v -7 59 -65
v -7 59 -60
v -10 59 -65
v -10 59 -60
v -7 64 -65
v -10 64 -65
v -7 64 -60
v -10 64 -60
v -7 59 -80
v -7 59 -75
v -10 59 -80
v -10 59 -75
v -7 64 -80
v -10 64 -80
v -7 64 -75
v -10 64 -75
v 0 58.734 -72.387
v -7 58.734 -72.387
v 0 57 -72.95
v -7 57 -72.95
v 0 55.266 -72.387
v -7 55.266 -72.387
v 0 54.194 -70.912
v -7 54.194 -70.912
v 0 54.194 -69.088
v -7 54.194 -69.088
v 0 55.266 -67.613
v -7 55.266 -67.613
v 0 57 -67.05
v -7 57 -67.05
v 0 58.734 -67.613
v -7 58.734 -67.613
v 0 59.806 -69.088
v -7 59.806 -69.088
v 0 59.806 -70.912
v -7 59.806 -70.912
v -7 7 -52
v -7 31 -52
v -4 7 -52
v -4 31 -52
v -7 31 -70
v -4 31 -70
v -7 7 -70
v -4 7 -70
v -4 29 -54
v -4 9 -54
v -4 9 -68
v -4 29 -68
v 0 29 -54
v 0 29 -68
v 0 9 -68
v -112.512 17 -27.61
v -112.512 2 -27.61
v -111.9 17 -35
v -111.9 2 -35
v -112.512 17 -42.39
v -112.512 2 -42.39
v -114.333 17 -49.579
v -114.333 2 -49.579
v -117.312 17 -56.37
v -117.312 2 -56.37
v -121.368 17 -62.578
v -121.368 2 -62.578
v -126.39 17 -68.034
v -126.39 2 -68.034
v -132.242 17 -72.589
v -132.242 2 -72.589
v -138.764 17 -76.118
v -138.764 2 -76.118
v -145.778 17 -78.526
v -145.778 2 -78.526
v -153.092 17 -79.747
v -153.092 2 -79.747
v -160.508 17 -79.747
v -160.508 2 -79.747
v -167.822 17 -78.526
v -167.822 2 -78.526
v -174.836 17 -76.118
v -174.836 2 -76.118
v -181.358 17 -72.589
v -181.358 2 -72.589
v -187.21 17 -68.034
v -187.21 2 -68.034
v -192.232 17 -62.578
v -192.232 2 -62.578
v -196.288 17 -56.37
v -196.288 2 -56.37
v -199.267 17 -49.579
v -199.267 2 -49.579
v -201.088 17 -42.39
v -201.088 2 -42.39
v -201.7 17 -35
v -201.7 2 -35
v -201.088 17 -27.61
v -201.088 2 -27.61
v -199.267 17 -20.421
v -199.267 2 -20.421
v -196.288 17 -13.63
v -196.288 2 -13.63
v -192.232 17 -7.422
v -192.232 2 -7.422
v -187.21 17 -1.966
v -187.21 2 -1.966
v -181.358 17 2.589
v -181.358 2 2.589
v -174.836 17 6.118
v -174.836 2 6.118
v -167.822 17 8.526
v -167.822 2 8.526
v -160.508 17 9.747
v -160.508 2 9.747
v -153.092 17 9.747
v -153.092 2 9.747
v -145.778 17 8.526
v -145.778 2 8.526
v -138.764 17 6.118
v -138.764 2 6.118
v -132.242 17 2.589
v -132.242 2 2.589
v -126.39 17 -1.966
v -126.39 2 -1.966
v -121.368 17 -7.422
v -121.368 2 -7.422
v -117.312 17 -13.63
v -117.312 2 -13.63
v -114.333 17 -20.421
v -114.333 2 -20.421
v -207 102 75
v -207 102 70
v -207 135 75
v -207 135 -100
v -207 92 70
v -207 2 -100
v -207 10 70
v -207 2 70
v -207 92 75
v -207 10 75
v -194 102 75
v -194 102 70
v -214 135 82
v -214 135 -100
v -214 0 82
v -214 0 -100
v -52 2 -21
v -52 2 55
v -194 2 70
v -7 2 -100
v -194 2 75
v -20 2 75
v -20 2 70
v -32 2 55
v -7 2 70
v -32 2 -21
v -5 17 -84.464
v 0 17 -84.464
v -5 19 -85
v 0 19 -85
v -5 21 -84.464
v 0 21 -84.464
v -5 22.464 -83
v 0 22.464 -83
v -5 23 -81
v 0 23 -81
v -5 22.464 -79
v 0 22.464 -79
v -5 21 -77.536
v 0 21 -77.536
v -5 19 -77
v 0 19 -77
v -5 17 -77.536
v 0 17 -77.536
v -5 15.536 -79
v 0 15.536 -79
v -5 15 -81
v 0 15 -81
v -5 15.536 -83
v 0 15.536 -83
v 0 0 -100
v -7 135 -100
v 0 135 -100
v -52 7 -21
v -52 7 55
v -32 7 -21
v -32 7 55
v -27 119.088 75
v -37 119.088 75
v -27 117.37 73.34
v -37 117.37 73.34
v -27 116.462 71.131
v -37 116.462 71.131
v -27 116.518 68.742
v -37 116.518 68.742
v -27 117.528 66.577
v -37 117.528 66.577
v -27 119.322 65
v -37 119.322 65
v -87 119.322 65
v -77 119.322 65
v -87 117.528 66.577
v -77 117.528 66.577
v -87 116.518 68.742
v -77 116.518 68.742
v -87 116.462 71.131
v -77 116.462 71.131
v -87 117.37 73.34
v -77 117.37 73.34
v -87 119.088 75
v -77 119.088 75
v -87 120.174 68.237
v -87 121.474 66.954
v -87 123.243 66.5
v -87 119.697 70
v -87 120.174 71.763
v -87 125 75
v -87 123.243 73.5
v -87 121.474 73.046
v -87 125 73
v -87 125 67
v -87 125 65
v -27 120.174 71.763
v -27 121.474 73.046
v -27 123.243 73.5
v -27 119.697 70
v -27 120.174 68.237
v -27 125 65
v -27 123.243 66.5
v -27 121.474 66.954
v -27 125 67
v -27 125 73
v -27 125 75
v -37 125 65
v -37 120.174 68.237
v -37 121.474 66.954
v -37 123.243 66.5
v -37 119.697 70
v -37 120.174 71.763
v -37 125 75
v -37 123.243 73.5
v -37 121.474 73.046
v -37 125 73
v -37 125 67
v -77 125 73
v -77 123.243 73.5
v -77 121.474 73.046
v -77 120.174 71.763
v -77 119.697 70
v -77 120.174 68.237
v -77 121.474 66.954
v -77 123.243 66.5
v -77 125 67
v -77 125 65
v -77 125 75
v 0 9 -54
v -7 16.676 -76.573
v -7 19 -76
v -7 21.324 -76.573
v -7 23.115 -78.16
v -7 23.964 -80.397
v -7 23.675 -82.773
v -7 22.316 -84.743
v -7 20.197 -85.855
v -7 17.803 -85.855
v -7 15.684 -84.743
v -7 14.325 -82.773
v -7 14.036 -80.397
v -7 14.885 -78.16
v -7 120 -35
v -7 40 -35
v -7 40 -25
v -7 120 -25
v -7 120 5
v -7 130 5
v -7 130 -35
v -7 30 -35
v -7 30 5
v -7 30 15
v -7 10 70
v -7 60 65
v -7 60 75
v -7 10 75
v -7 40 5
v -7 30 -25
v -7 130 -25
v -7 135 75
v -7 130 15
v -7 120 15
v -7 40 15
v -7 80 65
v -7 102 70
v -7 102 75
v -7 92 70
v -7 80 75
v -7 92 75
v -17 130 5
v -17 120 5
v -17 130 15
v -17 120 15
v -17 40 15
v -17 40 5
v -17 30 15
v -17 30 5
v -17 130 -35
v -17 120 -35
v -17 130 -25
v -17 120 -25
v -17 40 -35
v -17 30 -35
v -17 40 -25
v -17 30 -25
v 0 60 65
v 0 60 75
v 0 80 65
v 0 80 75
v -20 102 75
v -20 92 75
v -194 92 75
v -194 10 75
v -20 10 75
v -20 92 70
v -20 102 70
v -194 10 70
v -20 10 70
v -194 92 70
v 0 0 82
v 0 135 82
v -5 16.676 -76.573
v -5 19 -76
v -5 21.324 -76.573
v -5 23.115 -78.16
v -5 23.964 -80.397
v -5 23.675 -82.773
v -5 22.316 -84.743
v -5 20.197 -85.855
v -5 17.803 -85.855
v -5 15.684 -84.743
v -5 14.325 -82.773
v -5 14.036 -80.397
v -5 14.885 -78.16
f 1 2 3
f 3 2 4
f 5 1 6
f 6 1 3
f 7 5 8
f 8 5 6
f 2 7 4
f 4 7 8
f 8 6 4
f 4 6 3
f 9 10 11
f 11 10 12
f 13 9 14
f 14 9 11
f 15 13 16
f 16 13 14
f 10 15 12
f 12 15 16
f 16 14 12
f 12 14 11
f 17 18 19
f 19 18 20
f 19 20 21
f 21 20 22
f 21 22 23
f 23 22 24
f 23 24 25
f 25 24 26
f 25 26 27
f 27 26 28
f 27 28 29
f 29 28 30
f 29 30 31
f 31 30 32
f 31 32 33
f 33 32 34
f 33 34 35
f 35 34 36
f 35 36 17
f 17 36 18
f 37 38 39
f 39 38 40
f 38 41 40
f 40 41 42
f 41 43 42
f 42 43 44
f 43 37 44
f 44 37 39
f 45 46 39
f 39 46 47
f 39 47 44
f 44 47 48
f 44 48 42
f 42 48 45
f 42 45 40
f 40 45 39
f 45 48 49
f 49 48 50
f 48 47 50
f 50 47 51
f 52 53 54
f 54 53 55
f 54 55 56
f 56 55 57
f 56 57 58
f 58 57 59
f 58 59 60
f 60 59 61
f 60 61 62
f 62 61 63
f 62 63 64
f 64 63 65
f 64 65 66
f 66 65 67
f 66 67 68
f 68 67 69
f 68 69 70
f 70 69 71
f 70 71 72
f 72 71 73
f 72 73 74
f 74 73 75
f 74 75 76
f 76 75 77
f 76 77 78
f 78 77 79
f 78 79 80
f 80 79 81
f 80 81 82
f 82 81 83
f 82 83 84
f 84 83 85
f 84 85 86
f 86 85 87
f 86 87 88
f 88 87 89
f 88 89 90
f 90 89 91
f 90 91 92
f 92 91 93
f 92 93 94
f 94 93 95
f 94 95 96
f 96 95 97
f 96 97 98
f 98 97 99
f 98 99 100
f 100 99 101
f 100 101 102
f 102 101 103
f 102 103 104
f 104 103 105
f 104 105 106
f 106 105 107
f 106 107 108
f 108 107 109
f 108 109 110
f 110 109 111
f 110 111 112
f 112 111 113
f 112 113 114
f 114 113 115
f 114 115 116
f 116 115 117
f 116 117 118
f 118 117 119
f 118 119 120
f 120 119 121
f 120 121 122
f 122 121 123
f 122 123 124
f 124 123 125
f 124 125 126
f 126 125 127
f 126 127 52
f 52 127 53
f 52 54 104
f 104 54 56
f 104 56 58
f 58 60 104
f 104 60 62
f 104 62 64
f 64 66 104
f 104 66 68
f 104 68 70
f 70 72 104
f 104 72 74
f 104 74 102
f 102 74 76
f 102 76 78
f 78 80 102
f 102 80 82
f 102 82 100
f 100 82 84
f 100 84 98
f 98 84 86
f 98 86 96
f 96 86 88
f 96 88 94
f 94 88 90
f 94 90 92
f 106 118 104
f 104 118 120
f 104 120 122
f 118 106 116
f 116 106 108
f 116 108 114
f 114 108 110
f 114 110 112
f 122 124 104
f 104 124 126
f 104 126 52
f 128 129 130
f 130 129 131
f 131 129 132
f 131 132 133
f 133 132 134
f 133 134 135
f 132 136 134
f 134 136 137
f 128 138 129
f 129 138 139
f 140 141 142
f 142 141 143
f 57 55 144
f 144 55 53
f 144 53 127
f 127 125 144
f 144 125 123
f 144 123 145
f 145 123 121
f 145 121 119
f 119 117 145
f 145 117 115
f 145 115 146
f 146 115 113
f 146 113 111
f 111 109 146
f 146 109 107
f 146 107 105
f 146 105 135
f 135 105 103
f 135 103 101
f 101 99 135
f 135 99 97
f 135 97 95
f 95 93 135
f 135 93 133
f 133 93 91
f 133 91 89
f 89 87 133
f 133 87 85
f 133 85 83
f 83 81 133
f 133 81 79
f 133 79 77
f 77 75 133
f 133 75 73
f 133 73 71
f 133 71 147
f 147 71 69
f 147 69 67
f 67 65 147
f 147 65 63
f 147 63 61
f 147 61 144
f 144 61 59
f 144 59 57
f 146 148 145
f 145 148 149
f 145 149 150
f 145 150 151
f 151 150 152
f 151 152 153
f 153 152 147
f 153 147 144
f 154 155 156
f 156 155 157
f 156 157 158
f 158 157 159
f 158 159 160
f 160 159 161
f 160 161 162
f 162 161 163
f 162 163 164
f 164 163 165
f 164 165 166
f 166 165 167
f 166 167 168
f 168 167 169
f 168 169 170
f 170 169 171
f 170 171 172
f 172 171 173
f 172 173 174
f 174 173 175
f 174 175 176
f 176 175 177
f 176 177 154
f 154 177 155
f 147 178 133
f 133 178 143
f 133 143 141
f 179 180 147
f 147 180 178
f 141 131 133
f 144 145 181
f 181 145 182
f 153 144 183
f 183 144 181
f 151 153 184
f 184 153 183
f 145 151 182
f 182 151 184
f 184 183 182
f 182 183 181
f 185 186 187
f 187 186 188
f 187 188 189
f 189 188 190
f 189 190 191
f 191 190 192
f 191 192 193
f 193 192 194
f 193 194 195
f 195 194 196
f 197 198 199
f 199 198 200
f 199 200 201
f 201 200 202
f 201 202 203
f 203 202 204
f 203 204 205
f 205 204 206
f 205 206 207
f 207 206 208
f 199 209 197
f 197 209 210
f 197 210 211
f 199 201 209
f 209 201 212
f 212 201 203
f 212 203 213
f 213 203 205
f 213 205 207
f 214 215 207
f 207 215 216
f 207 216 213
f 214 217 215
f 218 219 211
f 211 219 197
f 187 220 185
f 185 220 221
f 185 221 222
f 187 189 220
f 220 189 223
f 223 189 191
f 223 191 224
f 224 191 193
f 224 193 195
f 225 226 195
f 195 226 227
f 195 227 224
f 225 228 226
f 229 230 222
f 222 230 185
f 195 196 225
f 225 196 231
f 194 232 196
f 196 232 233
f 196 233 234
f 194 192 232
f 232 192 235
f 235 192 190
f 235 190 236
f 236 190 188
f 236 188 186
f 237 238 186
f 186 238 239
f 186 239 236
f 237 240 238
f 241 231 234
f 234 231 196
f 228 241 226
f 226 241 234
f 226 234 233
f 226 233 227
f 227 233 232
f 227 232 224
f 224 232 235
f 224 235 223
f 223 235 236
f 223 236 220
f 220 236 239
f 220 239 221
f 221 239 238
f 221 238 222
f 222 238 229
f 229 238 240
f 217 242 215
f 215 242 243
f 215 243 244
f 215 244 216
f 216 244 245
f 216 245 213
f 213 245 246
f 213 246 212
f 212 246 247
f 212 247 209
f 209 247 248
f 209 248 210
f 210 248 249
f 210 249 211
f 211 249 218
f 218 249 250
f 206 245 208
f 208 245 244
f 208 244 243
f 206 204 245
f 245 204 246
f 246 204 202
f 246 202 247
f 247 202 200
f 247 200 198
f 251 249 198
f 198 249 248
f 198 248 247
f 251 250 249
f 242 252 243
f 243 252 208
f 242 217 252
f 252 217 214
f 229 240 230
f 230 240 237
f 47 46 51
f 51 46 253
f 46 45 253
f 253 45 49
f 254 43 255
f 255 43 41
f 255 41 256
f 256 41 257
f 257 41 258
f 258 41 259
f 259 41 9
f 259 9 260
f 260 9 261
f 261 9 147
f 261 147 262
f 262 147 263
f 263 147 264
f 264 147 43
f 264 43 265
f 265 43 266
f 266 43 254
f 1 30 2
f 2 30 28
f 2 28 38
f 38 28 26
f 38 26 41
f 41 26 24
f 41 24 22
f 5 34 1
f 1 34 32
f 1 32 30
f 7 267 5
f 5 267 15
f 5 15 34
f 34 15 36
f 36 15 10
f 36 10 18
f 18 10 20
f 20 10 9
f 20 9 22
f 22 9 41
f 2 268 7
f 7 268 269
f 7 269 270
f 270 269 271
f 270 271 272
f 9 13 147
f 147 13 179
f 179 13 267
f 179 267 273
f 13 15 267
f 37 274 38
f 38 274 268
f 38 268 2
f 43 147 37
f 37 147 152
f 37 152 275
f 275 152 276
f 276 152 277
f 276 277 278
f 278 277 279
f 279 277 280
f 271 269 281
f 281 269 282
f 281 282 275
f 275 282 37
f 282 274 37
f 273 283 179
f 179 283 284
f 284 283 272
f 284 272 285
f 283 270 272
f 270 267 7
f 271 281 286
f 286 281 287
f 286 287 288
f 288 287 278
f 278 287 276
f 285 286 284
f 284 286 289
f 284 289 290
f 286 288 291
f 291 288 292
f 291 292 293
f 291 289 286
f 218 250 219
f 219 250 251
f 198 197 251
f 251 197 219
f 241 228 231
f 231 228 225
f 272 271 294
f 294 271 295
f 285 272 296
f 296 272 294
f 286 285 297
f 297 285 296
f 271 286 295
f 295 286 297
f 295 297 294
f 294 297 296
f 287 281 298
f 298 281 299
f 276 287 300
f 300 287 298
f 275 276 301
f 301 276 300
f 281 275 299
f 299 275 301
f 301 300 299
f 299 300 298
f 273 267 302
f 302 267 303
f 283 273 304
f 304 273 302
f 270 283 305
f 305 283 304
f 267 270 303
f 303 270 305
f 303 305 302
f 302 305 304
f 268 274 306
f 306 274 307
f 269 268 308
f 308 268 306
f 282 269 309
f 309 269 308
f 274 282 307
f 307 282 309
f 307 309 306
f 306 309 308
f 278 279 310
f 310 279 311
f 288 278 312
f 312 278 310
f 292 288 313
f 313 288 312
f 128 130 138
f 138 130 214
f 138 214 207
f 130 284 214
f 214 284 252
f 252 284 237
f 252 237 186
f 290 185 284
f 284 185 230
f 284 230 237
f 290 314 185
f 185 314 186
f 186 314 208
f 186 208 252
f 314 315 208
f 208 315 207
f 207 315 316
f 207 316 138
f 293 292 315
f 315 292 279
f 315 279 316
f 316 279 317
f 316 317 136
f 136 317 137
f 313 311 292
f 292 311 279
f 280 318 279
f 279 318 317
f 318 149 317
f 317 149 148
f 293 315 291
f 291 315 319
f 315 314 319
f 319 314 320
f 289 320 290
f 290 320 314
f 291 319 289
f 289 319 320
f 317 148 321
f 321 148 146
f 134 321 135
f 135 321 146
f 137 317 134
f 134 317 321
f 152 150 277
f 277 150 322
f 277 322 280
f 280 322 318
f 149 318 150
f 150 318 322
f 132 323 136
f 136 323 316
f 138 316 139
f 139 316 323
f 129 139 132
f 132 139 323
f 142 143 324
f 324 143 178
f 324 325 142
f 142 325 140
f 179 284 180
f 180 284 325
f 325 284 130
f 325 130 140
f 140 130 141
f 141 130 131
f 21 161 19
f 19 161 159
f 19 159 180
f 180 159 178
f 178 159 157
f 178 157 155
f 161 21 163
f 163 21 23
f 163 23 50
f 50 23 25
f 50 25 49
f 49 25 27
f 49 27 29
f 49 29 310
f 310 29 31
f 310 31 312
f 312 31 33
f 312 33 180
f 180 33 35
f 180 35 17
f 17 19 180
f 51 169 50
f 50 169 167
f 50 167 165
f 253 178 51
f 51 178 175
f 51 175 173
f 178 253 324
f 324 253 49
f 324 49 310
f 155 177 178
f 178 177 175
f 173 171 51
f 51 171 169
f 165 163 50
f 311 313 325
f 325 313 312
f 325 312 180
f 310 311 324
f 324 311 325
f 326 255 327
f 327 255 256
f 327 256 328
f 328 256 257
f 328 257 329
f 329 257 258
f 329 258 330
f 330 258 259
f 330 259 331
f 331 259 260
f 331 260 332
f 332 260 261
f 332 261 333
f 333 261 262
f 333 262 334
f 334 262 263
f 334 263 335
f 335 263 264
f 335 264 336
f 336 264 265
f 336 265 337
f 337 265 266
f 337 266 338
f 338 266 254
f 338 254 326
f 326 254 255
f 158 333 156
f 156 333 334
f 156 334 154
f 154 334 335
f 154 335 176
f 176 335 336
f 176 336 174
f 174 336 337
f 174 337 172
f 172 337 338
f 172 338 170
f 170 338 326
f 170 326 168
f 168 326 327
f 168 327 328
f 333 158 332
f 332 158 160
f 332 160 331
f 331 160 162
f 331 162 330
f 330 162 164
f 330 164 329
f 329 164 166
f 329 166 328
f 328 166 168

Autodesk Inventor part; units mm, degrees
ref_plane "YZ Plane" through (0, 0, 0) normal (1, 0, 0) x (0, 1, 0)
ref_plane "XY Plane" through (0, 0, 0) normal (0, 0, 1) x (1, 0, 0)
sketch "Boceto1" plane through (0, 0, 0) normal (1, 0, 0) x (0, 1, 0)
  line L0 (135, 82) -> (0, 82)
  line L1 (0, 82) -> (0, -100)
  line L2 (0, -100) -> (135, -100)
  line L3 (135, -100) -> (135, 82)
  line L4 (135, 82) -> (0, -100) construction
  line L5 (0, 82) -> (135, -100) construction
  point P0 (0, 0)
  point P1 (67.5, -9)
  dimension "d0" = 182
  dimension "d1" = 135
  dimension "d2" = 100
extrude "Extrusión1" add sketch "Boceto1" against normal blind 214
sketch "Boceto2" plane through (-214, 0, 0) normal (-1, 0, 0) x (0, 0, 1)
  line L0 (82, 135) -> (-100, 135) projected
  line L1 (-93, 2) -> (75, 2)
  line L2 (75, 2) -> (75, 135)
  line L3 (75, 135) -> (-93, 135)
  line L4 (-93, 135) -> (-93, 2)
  line L5 (-93, 2) -> (75, 135) construction
  line L6 (75, 2) -> (-93, 135) construction
  line L7 (-100, 0) -> (82, 0) projected
  line L8 (82, 0) -> (82, 135) projected
  line L9 (-100, 135) -> (-100, 0) projected
  point P0 (0, 0)
  point P1 (-9, 68.5)
  point P2 (-93, 135)
  dimension "d5" = 2
  dimension "d6" = 7
  dimension "d7" = 7
extrude "Extrusión2" cut sketch "Boceto2" against normal blind 207 contours L2 L1 L4 L0
sketch "Boceto3" plane through (0, 0, 82) normal (0, 0, 1) x (1, 0, 0)
  line L0 (-20, 0) -> (0, 0)
  line L1 (0, 0) -> (0, 10)
  line L2 (0, 10) -> (-20, 10)
  line L3 (-20, 10) -> (-20, 0)
  line L4 (-20, 0) -> (0, 10) construction
  line L5 (0, 0) -> (-20, 10) construction
  line L6 (-214, 0) -> (-194, 0)
  line L7 (-194, 0) -> (-194, 10)
  line L8 (-194, 10) -> (-214, 10)
  line L9 (-214, 10) -> (-214, 0)
  line L10 (-214, 0) -> (-194, 10) construction
  line L11 (-194, 0) -> (-214, 10) construction
  line L12 (-20, 92) -> (0, 92)
  line L13 (0, 92) -> (0, 102)
  line L14 (0, 102) -> (-20, 102)
  line L15 (-20, 102) -> (-20, 92)
  line L16 (-20, 92) -> (0, 102) construction
  line L17 (0, 92) -> (-20, 102) construction
  line L18 (-214, 0) -> (-214, 135) projected
  line L19 (0, 135) -> (0, 0) projected
  line L20 (0, 0) -> (-214, 0) projected
  line L21 (-214, 92) -> (-194, 92)
  line L22 (-194, 92) -> (-194, 102)
  line L23 (-194, 102) -> (-214, 102)
  line L24 (-214, 102) -> (-214, 92)
  line L25 (-214, 92) -> (-194, 102) construction
  line L26 (-194, 92) -> (-214, 102) construction
  line L27 (-214, 2) -> (-7, 2) projected
  point P0 (-10, 5)
  point P1 (-204, 5)
  point P2 (-10, 97)
  point P3 (-204, 97)
  point P4 (-10, 0)
  dimension "d10" = 20
  dimension "d11" = 10
  dimension "d13" = 10
  dimension "d14" = 20
  dimension "d65" = 100
extrude "Extrusión3" add sketch "Boceto3" against normal blind 12 contours L3 L2 L1 L0 | L18 L23 L22 L21 | L12 L15 L14 L13 | L6 L9 L27 L7 | L27 L9 L8 L7
sketch "Sketch4" plane through (0, 0, 0) normal (1, 0, 0) x (0, 0, -1)
  line L0 (-82, 0) -> (-82, 135)
  line L1 (-100, 90) -> (-100, 60)
  line L2 (-82, 0) -> (100, 0) projected
  line L3 (-75, 60) -> (-65, 60)
  line L4 (-65, 60) -> (-65, 80)
  line L5 (-65, 80) -> (-75, 80)
  line L6 (-75, 80) -> (-75, 60)
  line L7 (-75, 60) -> (-65, 80) construction
  line L8 (-65, 60) -> (-75, 80) construction
  point P0 (0, 0)
  point P1 (-70, 70)
  point P2 (-70, 60)
  dimension "d43" = 17
  dimension "d44" = 7
  dimension "d45" = 20
  dimension "d46" = 60
extrude "Extrusion4" cut sketch "Sketch4" against normal up to next
sketch "Sketch5" plane through (-7, 0, 0) normal (-1, 0, 0) x (0, 0, 1)
  line L0 (-35, 130) -> (-25, 130)
  line L1 (-25, 130) -> (-25, 120)
  line L2 (-25, 120) -> (-35, 120)
  line L3 (-35, 120) -> (-35, 130)
  line L4 (5, 130) -> (15, 130)
  line L5 (15, 130) -> (15, 120)
  line L6 (15, 120) -> (5, 120)
  line L7 (5, 120) -> (5, 130)
  line L8 (-35, 40) -> (-25, 40)
  line L9 (-25, 40) -> (-25, 30)
  line L10 (-25, 30) -> (-35, 30)
  line L11 (-35, 30) -> (-35, 40)
  line L12 (15, 40) -> (5, 40)
  line L13 (5, 40) -> (5, 30)
  line L14 (5, 30) -> (15, 30)
  line L15 (15, 30) -> (15, 40)
  line L16 (-93, 135) -> (75, 135) projected
  line L17 (75, 135) -> (75, 102) projected
  line L18 (70, 2) -> (-93, 2) projected
  line L19 (75, 92) -> (75, 10) projected
  point P0 (0, 0)
  point P1 (-30, 130)
  point P2 (-30, 30)
  point P3 (10, 130)
  point P4 (15, 125)
  dimension "d25" = 10
  dimension "d26" = 10
  dimension "d27" = 10
  dimension "d28" = 10
  dimension "d29" = 100
  dimension "d31" = 5
  dimension "d32" = 60
  dimension "d77" = 50
extrude "Extrusion5" add sketch "Sketch5" along normal blind 10
sketch "Sketch8" plane through (-7, 135, 75) normal (0, 0, -1) x (-1, 0, 0)
  line L0 (20, -20) -> (30, -20)
  line L1 (30, -20) -> (30, -10)
  line L2 (30, -10) -> (20, -10)
  line L3 (20, -10) -> (20, -20)
  line L4 (20, -20) -> (30, -10) construction
  line L5 (30, -20) -> (20, -10) construction
  line L6 (70, -20) -> (80, -20)
  line L7 (80, -20) -> (80, -10)
  line L8 (80, -10) -> (70, -10)
  line L9 (70, -10) -> (70, -20)
  line L10 (70, -20) -> (80, -10) construction
  line L11 (80, -20) -> (70, -10) construction
  line L12 (0, 0) -> (207, 0) projected
  line L13 (0, 0) -> (0, -33) projected
  point P0 (-7, -135)
  point P1 (25, -15)
  point P2 (75, -15)
  dimension "d47" = 10
  dimension "d48" = 10
  dimension "d49" = 10
  dimension "d50" = 10
  dimension "d51" = 50
  dimension "d52" = 10
  dimension "d53" = 20
extrude "Extrusion6" add sketch "Sketch8" along normal blind 10
sketch "Sketch9" plane through (-7, 0, 0) normal (-1, 0, 0) x (0, 0, 1)
  line L0 (-68, 9) -> (-54, 9)
  line L1 (-54, 9) -> (-54, 29)
  line L2 (-54, 29) -> (-68, 29)
  line L3 (-68, 29) -> (-68, 9)
  line L4 (-68, 9) -> (-54, 29) construction
  line L5 (-54, 9) -> (-68, 29) construction
  line L6 (70, 2) -> (-93, 2) projected
  line L7 (-93, 2) -> (-93, 135) projected
  circle A0 centre (-81, 19) radius 4
  point P0 (0, 0)
  point P1 (-61, 19)
  dimension "d56" = 20
  dimension "d57" = 14
  dimension "d58" = 7
  dimension "d59" = 25
  dimension "d60" = 8
  dimension "d61" = 20
  dimension "d62" = 17
extrude "Extrusion7" cut sketch "Sketch9" against normal up to next
sketch "Sketch10" plane through (-87, 115, 75) normal (-1, 0, 0) x (0, 0, 1)
  line L0 (0, 10) -> (-10, 10) projected
  arc A0 (-8, 10) -> (-2, 10) centre (-5, 8.1972) ccw
  line L1 (0, 20) -> (0, -13) projected
  point P0 (-75, -115)
  dimension "d66" = 3.5
  dimension "d67" = 2
  dimension "d68" = 2
extrude "Extrusion8" cut sketch "Sketch10" against normal up to surface (60 mm away)
sketch "Sketch11" plane through (-87, 115, 75) normal (-1, 0, 0) x (0, 0, 1)
  line L0 (-10, 10) -> (-10, 0) projected
  line L1 (0, 0) -> (0, 10) projected
  arc A0 (-10, 4.322) -> (0, 4.0877) centre (-4.9301, 7.1893) ccw
  line L2 (-10, 4.322) -> (-10, 0)
  line L3 (0, 0) -> (-10, 0) projected
  line L4 (0, 0) -> (0, 4.0877)
  line L5 (-10, 4.322) -> (-10, 0)
  line L6 (0, 0) -> (0, 4.0877)
  line L7 (-10, 4.322) -> (-10, 0)
  line L8 (0, 0) -> (0, 4.0877)
  line L9 (-10, 4.322) -> (-10, 0)
  line L10 (0, 0) -> (0, 4.0877)
  point P0 (-75, -115)
  point P1 (-5, 0)
  point P2 (-5.0665, 1.3663)
  dimension "d71" = 5.8246
  dimension "d73" = 4.322
  dimension "d74" = 1.3663
extrude "Extrusion9" cut sketch "Sketch11" against normal up to surface (60 mm away)
sketch "Sketch12" plane through (-214, 2, -93) normal (0, 1, 0) x (1, 0, 0)
  line L0 (162, -72) -> (182, -72)
  line L1 (182, -72) -> (182, -148)
  line L2 (182, -148) -> (162, -148)
  line L3 (162, -148) -> (162, -72)
  line L4 (162, -72) -> (182, -148) construction
  line L5 (182, -72) -> (162, -148) construction
  line L6 (207, 0) -> (207, -168) projected
  line L7 (207, -168) -> (0, -168) projected
  point P0 (214, -93)
  point P1 (172, -110)
  dimension "d78" = 76
  dimension "d79" = 20
  dimension "d80" = 25
  dimension "d81" = 20
extrude "Extrusion10" add sketch "Sketch12" along normal blind 5
sketch "Sketch13" plane through (-214, 2, -93) normal (0, 0, 1) x (1, 0, 0)
  line L0 (214, 133) -> (0, 133) projected
  line L1 (0, 0) -> (207, 0) projected
  line L2 (0, 133) -> (207, 133)
  line L3 (207, 133) -> (207, 0)
  line L4 (207, 0) -> (0, 0)
  line L5 (0, 0) -> (0, 133)
  point P0 (214, -2)
extrude "Extrusion11" cut sketch "Sketch13" against normal up to next
sketch "Sketch15" plane through (-214, 2, -100) normal (0, 1, 0) x (1, 0, 0)
  line L0 (20, -175) -> (0, -175) projected
  line L1 (0, 0) -> (0, -182) projected
  line L2 (7, -175) -> (0, -175)
  line L3 (0, -175) -> (0, 0)
  line L4 (0, 0) -> (7, 0)
  line L5 (7, 0) -> (7, -175)
  point P0 (214, -100)
  dimension "d90" = 7
extrude "Extrusion13" add sketch "Sketch15" along normal up to surface (133 mm away)
sketch "Sketch16" plane through (-194, 2, 75) normal (0, 1, 0) x (1, 0, 0)
  circle A0 centre (37.2, 110) radius 44.9
  line L0 (-13, 175) -> (-13, 0) projected
  line L1 (-13, 175) -> (187, 175) projected
  point P0 (194, 75)
  dimension "d93" = 89.8
  dimension "d94" = 50.2
  dimension "d95" = 65
extrude "Extrusion14" add sketch "Sketch16" along normal blind 15
sketch "Sketch17" plane through (-7, 0, 0) normal (-1, 0, 0) x (0, 0, 1)
  line L0 (-70, 31) -> (-52, 31)
  line L1 (-52, 31) -> (-52, 7)
  line L2 (-52, 7) -> (-70, 7)
  line L3 (-70, 7) -> (-70, 31)
  line L4 (-68, 29) -> (-54, 29) projected
  line L5 (-54, 29) -> (-54, 9) projected
  line L6 (-54, 9) -> (-68, 9) projected
  line L7 (-68, 9) -> (-68, 29) projected
  point P0 (0, 0)
  dimension "d98" = 2
  dimension "d99" = 2
  dimension "d100" = 2
  dimension "d101" = 2
extrude "Extrusion15" cut sketch "Sketch17" against normal blind 3 contours L0 L1 L2 L3 | L4 L5 L6 L7
sketch "Sketch18" plane through (-7, 0, 0) normal (-1, 0, 0) x (0, 0, 1)
  circle A0 centre (-70, 57) radius 2.95
  line L0 (70, 2) -> (-100, 2) projected
  line L1 (-100, 2) -> (-100, 135) projected
  point P0 (0, 0)
  dimension "d104" = 5.9
  dimension "d105" = 55
  dimension "d106" = 30
extrude "Extrusion16" cut sketch "Sketch18" against normal up to surface (7 mm away)
sketch "Sketch19" plane through (-7, 0, 0) normal (-1, 0, 0) x (0, 0, 1)
  line L0 (-80, 59) -> (-75, 59)
  line L1 (-75, 59) -> (-75, 64)
  line L2 (-75, 64) -> (-80, 64)
  line L3 (-80, 64) -> (-80, 59)
  line L4 (-65, 59) -> (-60, 59)
  line L5 (-60, 59) -> (-60, 64)
  line L6 (-60, 64) -> (-65, 64)
  line L7 (-65, 64) -> (-65, 59)
  circle A0 centre (-70, 57) radius 2.95 projected
  point P0 (0, 0)
  dimension "d109" = 5
  dimension "d110" = 5
  dimension "d111" = 5
  dimension "d112" = 5
  dimension "d113" = 20
  dimension "d114" = 5
  dimension "d115" = 2
extrude "Extrusion17" add sketch "Sketch19" along normal blind 3 contours L3 L2 L1 L0 | L7 L6 L5 L4
sketch "Sketch20" plane through (-7, 0, 0) normal (-1, 0, 0) x (0, 0, 1)
  circle A0 centre (-81, 19) radius 5
  circle A1 centre (-81, 19) radius 4 projected
  point P0 (0, 0)
  dimension "d118" = 1
extrude "Extrusion18" cut sketch "Sketch20" against normal blind 2 contours A0 | A1
ref_plane "Work Plane1" through (-207, 135, 31.25) normal (-1, 0, 0) x (0, 0, 1)
split_face "Split1"
properties part number "estructura_pieza1"
